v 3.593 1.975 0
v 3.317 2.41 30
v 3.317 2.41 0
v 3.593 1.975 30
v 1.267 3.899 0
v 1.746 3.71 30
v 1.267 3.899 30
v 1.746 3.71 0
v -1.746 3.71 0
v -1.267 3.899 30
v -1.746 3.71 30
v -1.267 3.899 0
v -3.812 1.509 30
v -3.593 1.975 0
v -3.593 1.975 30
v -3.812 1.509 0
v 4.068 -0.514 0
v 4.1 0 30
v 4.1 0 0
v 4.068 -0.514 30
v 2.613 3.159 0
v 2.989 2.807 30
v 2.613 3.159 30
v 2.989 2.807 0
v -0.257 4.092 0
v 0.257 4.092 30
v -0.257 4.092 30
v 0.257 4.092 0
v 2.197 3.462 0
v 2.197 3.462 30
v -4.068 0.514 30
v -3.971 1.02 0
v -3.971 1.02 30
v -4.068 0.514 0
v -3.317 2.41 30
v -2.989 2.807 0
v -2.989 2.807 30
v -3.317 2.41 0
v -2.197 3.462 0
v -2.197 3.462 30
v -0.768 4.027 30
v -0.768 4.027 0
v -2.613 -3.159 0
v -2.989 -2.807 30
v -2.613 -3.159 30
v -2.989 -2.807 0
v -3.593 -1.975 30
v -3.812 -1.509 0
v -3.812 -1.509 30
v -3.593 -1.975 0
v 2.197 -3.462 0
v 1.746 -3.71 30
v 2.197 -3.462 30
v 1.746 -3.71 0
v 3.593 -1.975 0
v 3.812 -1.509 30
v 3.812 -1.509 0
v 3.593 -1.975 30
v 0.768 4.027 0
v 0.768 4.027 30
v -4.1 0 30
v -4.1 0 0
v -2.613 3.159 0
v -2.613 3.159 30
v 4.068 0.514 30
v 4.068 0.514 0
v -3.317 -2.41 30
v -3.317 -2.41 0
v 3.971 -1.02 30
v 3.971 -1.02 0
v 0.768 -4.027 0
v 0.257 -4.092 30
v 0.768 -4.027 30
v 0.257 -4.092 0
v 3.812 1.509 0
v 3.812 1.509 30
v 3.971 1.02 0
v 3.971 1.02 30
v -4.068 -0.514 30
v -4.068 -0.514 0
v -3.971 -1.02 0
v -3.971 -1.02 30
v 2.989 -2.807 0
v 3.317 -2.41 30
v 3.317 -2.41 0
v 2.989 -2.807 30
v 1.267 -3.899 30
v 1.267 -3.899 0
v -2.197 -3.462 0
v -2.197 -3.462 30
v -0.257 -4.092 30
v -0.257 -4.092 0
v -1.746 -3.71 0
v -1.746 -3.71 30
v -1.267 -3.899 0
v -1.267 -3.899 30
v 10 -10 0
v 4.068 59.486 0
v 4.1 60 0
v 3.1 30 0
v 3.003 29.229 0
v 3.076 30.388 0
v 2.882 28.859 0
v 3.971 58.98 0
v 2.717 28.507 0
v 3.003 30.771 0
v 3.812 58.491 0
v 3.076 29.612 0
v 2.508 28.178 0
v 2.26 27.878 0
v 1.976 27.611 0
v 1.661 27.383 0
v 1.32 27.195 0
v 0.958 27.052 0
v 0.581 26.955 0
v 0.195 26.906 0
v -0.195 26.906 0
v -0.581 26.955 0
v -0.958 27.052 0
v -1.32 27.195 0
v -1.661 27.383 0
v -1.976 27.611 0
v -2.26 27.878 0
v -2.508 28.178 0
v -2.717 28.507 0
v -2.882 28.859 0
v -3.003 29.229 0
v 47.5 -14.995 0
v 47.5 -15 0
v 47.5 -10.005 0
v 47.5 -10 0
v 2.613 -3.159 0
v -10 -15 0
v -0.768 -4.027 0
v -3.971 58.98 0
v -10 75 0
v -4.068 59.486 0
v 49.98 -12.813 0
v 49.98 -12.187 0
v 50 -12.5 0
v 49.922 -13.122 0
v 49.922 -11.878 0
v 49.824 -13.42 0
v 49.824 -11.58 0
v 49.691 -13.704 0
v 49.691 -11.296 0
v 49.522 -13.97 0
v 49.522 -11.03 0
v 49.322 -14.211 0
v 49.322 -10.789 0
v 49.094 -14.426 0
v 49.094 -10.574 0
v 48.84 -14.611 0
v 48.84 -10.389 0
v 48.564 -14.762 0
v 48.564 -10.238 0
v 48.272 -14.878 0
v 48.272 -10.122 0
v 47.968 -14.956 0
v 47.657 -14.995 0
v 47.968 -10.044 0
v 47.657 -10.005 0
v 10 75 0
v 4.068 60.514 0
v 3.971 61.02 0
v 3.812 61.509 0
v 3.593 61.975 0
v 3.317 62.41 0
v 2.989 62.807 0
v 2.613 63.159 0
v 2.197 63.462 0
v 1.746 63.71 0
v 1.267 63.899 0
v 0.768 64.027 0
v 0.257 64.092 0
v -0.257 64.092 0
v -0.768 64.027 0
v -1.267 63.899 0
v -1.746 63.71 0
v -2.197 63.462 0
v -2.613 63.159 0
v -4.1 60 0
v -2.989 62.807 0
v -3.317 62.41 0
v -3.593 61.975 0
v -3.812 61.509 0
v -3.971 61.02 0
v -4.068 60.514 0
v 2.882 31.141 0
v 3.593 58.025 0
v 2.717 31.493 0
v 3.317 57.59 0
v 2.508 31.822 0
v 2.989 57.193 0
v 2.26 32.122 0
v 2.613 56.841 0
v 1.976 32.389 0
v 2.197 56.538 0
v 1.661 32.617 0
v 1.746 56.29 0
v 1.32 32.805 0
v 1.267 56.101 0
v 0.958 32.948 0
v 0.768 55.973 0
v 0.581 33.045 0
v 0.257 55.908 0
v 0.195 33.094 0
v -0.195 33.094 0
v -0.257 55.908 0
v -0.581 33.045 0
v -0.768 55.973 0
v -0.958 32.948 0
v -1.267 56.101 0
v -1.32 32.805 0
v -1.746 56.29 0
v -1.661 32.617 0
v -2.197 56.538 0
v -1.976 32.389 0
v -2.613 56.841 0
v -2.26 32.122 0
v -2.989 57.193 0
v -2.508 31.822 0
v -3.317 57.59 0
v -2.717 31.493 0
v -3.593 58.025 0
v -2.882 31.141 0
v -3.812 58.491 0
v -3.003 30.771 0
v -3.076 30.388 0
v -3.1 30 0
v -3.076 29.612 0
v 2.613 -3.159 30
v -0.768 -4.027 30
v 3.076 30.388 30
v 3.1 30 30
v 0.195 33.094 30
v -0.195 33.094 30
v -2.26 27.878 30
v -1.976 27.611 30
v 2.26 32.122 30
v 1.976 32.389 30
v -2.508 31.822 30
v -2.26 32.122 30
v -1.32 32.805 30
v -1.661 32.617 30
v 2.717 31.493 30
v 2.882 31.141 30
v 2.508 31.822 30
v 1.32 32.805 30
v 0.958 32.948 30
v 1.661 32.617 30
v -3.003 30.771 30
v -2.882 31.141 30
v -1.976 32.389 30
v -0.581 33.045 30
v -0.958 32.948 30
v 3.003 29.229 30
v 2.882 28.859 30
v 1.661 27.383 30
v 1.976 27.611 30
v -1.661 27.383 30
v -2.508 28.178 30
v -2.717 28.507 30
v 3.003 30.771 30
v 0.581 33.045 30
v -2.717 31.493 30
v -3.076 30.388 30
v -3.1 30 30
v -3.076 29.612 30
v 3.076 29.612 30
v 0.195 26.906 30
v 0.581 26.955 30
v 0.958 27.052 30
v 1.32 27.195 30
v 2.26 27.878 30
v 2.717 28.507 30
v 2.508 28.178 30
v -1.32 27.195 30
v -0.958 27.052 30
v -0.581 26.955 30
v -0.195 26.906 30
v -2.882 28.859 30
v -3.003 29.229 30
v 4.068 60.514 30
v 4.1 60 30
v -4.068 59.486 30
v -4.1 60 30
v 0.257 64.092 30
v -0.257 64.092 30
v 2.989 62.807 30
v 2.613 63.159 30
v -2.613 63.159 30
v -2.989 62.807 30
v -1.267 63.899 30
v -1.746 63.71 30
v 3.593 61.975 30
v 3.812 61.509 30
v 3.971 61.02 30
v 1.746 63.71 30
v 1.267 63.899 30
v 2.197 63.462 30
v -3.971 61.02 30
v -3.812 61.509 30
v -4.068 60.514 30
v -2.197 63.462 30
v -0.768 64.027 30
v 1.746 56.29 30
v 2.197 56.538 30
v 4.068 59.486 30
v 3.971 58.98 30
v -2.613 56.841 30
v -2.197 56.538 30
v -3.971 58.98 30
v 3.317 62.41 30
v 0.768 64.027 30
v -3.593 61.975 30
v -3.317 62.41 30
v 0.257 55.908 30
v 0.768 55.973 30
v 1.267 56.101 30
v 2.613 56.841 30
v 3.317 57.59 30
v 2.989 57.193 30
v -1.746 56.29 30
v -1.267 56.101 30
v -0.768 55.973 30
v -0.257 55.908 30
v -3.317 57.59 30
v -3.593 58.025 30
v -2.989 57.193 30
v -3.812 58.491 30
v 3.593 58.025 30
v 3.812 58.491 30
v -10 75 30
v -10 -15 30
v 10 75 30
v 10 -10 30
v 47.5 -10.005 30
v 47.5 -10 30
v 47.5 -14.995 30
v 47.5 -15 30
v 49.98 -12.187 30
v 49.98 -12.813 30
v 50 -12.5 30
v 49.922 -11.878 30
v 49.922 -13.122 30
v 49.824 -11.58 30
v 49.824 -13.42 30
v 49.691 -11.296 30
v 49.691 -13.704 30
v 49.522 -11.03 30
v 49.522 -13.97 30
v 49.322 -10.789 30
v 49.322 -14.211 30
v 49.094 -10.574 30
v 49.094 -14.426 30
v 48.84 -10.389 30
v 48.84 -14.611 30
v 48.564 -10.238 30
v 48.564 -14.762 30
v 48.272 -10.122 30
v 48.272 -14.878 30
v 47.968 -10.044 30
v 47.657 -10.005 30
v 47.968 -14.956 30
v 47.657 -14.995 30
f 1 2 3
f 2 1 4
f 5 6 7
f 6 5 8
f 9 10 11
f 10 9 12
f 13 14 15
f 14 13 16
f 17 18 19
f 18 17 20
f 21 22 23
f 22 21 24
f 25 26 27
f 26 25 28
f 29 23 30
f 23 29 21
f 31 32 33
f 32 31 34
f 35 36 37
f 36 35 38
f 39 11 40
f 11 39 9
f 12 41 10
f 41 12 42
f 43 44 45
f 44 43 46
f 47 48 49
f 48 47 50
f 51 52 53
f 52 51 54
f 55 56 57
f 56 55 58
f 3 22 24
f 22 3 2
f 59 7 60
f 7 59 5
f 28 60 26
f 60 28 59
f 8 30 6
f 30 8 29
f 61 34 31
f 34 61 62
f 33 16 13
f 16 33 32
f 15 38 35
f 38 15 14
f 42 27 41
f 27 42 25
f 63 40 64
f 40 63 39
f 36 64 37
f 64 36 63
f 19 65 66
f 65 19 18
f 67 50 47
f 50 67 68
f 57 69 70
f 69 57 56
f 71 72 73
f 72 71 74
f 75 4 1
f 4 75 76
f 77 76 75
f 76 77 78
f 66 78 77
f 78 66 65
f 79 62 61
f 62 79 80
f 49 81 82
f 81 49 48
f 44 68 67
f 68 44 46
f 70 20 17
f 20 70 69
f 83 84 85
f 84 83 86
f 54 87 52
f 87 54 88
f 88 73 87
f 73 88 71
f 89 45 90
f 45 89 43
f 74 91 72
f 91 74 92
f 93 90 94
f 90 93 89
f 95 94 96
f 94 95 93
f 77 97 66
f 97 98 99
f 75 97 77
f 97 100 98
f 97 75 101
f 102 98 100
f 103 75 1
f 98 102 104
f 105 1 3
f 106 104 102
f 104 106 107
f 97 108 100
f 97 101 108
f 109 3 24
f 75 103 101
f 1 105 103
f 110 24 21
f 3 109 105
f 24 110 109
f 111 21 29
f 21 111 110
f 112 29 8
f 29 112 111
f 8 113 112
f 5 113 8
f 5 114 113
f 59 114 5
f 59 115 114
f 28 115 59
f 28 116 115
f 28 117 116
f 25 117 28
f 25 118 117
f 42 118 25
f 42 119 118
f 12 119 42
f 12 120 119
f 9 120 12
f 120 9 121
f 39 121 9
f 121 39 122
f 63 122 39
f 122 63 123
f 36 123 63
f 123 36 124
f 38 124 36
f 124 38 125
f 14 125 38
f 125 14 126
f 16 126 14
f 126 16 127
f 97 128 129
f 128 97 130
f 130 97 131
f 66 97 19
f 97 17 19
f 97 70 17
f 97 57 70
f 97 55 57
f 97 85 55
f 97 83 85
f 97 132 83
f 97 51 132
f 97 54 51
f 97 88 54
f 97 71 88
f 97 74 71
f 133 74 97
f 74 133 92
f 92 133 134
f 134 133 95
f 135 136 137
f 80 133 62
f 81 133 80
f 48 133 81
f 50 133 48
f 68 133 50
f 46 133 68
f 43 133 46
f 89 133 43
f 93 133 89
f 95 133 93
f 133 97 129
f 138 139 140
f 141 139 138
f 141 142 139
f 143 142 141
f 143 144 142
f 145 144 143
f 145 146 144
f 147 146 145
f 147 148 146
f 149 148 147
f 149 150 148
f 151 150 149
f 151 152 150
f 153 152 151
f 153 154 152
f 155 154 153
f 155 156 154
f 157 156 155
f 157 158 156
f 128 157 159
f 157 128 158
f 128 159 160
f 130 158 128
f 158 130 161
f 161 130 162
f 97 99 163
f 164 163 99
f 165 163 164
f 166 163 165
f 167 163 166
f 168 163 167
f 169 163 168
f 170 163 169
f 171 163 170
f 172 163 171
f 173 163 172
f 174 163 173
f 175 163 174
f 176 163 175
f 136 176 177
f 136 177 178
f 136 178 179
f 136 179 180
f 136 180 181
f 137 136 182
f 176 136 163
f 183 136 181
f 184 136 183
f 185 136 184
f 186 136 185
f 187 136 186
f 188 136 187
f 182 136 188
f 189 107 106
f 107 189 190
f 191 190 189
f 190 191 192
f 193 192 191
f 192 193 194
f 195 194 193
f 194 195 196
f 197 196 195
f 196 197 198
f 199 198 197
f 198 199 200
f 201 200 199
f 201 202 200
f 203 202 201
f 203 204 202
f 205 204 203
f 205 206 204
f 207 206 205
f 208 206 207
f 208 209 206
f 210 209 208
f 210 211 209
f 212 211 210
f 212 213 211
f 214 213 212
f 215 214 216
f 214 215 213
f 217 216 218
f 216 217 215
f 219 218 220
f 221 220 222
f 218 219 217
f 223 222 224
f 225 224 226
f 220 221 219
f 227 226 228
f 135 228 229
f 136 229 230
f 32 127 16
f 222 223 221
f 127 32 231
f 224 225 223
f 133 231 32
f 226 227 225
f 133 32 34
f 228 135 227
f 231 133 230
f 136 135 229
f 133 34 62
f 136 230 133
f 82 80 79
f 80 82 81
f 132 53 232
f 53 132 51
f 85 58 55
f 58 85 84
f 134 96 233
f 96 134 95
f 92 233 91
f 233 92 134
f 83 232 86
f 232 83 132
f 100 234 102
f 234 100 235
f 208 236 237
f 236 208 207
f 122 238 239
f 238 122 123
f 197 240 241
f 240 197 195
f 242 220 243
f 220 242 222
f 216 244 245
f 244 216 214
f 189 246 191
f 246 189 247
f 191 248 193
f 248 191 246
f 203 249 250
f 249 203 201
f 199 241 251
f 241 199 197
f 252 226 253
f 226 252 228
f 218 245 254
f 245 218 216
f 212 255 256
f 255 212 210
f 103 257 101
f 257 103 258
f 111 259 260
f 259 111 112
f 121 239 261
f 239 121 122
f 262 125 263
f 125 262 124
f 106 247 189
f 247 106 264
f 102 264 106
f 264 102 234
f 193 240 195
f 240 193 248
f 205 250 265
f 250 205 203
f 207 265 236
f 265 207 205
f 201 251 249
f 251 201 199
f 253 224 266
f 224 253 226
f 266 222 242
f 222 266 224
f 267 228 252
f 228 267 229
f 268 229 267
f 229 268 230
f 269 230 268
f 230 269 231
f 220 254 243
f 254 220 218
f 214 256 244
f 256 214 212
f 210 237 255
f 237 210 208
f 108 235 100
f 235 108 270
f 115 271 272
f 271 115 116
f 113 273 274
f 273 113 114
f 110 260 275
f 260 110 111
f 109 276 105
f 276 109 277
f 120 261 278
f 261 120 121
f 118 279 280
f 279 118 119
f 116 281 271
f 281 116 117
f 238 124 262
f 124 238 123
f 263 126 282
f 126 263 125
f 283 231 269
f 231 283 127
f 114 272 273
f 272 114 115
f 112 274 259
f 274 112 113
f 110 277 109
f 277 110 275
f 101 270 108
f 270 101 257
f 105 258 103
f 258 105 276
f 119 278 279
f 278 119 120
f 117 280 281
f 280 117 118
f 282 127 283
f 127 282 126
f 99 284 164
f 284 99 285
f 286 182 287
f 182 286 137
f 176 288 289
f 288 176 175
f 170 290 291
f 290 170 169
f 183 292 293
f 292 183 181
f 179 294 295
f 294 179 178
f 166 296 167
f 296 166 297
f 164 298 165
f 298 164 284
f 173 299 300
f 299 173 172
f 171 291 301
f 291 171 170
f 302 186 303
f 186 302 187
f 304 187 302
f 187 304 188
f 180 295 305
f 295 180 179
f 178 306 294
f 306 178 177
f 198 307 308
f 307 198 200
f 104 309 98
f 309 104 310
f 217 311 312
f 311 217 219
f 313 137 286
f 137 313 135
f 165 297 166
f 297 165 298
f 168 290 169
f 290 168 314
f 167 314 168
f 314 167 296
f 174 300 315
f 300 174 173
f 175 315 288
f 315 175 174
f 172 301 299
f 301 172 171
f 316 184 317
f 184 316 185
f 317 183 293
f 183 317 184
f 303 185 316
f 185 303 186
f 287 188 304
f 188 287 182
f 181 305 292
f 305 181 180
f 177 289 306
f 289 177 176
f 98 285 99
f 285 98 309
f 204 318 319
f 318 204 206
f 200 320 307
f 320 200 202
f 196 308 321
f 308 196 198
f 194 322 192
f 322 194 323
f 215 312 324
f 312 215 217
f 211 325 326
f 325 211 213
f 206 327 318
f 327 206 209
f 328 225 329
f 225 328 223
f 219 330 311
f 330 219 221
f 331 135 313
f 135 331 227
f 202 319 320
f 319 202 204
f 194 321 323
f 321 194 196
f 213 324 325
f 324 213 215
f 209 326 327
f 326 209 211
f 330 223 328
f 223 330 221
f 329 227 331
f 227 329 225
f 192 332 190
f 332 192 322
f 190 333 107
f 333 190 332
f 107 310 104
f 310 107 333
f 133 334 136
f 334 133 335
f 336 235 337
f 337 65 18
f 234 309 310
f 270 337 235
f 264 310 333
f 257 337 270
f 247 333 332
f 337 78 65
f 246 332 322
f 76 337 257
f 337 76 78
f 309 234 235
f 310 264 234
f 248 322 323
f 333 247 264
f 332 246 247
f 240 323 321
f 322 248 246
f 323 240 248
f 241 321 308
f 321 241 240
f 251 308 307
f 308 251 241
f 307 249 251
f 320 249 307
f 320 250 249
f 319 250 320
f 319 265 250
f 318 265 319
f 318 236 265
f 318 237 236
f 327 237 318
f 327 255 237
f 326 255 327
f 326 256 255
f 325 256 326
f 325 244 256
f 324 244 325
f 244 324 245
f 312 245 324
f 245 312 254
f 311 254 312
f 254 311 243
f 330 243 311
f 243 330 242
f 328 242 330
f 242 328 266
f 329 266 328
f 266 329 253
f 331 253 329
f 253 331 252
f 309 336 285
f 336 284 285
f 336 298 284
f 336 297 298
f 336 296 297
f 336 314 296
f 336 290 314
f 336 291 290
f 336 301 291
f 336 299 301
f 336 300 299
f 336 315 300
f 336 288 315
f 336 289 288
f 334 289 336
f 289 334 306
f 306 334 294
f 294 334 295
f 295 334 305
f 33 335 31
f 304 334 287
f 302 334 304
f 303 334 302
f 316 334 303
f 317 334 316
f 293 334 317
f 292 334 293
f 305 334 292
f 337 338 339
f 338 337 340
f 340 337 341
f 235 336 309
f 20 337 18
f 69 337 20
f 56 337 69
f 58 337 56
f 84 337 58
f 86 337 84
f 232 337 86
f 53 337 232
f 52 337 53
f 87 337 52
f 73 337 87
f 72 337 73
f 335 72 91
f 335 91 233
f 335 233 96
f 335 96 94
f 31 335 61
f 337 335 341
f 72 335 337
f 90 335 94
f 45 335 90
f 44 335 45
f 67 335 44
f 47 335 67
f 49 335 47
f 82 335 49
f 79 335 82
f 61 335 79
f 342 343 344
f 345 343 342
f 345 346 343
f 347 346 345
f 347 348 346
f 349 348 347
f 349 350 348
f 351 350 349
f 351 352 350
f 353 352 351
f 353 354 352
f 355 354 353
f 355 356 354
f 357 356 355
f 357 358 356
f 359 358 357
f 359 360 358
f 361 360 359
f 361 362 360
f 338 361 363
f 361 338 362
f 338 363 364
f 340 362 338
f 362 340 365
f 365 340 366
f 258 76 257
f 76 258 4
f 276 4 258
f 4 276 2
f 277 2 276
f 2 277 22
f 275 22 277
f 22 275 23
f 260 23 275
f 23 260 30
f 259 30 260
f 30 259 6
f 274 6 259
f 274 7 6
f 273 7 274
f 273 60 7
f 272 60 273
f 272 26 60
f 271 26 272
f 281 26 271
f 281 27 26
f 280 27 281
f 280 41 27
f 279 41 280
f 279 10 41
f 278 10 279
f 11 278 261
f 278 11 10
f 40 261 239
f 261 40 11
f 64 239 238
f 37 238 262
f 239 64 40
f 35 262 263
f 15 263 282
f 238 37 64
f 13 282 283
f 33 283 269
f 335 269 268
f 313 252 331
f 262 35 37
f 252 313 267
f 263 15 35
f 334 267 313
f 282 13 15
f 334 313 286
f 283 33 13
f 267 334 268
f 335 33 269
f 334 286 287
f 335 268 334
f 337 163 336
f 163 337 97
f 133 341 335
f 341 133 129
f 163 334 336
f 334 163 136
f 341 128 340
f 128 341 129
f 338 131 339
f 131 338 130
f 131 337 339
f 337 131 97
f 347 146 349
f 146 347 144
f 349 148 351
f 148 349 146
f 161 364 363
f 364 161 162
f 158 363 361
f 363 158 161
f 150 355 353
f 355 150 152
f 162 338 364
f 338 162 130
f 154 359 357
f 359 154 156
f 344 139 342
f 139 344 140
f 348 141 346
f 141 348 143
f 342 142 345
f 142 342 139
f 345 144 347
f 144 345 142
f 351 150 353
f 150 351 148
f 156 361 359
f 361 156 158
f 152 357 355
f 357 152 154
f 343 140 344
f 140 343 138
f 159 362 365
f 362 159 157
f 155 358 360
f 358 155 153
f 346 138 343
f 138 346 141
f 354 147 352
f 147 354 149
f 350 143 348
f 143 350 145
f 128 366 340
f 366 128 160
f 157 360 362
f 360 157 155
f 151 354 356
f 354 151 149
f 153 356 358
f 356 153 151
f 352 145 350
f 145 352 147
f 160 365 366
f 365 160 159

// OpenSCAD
$fn=50;

difference (){
union(){
translate([-10,-15,0]) cube([20,90,30]);       //Cariage stand
translate([10,-15,0]) cube([37.5,5,30]);
translate([47.5,-12.5,0]) cylinder (d=5, h=30);
}

color("Red") union(){
cylinder (d=8.2, h=40);                             //Lead rod
translate([0,30,0]) cylinder (d=6.2, h=40);         //Lead screw
translate([0,60,0]) cylinder (d=8.2, h=40);         //Lead rod
}
}
